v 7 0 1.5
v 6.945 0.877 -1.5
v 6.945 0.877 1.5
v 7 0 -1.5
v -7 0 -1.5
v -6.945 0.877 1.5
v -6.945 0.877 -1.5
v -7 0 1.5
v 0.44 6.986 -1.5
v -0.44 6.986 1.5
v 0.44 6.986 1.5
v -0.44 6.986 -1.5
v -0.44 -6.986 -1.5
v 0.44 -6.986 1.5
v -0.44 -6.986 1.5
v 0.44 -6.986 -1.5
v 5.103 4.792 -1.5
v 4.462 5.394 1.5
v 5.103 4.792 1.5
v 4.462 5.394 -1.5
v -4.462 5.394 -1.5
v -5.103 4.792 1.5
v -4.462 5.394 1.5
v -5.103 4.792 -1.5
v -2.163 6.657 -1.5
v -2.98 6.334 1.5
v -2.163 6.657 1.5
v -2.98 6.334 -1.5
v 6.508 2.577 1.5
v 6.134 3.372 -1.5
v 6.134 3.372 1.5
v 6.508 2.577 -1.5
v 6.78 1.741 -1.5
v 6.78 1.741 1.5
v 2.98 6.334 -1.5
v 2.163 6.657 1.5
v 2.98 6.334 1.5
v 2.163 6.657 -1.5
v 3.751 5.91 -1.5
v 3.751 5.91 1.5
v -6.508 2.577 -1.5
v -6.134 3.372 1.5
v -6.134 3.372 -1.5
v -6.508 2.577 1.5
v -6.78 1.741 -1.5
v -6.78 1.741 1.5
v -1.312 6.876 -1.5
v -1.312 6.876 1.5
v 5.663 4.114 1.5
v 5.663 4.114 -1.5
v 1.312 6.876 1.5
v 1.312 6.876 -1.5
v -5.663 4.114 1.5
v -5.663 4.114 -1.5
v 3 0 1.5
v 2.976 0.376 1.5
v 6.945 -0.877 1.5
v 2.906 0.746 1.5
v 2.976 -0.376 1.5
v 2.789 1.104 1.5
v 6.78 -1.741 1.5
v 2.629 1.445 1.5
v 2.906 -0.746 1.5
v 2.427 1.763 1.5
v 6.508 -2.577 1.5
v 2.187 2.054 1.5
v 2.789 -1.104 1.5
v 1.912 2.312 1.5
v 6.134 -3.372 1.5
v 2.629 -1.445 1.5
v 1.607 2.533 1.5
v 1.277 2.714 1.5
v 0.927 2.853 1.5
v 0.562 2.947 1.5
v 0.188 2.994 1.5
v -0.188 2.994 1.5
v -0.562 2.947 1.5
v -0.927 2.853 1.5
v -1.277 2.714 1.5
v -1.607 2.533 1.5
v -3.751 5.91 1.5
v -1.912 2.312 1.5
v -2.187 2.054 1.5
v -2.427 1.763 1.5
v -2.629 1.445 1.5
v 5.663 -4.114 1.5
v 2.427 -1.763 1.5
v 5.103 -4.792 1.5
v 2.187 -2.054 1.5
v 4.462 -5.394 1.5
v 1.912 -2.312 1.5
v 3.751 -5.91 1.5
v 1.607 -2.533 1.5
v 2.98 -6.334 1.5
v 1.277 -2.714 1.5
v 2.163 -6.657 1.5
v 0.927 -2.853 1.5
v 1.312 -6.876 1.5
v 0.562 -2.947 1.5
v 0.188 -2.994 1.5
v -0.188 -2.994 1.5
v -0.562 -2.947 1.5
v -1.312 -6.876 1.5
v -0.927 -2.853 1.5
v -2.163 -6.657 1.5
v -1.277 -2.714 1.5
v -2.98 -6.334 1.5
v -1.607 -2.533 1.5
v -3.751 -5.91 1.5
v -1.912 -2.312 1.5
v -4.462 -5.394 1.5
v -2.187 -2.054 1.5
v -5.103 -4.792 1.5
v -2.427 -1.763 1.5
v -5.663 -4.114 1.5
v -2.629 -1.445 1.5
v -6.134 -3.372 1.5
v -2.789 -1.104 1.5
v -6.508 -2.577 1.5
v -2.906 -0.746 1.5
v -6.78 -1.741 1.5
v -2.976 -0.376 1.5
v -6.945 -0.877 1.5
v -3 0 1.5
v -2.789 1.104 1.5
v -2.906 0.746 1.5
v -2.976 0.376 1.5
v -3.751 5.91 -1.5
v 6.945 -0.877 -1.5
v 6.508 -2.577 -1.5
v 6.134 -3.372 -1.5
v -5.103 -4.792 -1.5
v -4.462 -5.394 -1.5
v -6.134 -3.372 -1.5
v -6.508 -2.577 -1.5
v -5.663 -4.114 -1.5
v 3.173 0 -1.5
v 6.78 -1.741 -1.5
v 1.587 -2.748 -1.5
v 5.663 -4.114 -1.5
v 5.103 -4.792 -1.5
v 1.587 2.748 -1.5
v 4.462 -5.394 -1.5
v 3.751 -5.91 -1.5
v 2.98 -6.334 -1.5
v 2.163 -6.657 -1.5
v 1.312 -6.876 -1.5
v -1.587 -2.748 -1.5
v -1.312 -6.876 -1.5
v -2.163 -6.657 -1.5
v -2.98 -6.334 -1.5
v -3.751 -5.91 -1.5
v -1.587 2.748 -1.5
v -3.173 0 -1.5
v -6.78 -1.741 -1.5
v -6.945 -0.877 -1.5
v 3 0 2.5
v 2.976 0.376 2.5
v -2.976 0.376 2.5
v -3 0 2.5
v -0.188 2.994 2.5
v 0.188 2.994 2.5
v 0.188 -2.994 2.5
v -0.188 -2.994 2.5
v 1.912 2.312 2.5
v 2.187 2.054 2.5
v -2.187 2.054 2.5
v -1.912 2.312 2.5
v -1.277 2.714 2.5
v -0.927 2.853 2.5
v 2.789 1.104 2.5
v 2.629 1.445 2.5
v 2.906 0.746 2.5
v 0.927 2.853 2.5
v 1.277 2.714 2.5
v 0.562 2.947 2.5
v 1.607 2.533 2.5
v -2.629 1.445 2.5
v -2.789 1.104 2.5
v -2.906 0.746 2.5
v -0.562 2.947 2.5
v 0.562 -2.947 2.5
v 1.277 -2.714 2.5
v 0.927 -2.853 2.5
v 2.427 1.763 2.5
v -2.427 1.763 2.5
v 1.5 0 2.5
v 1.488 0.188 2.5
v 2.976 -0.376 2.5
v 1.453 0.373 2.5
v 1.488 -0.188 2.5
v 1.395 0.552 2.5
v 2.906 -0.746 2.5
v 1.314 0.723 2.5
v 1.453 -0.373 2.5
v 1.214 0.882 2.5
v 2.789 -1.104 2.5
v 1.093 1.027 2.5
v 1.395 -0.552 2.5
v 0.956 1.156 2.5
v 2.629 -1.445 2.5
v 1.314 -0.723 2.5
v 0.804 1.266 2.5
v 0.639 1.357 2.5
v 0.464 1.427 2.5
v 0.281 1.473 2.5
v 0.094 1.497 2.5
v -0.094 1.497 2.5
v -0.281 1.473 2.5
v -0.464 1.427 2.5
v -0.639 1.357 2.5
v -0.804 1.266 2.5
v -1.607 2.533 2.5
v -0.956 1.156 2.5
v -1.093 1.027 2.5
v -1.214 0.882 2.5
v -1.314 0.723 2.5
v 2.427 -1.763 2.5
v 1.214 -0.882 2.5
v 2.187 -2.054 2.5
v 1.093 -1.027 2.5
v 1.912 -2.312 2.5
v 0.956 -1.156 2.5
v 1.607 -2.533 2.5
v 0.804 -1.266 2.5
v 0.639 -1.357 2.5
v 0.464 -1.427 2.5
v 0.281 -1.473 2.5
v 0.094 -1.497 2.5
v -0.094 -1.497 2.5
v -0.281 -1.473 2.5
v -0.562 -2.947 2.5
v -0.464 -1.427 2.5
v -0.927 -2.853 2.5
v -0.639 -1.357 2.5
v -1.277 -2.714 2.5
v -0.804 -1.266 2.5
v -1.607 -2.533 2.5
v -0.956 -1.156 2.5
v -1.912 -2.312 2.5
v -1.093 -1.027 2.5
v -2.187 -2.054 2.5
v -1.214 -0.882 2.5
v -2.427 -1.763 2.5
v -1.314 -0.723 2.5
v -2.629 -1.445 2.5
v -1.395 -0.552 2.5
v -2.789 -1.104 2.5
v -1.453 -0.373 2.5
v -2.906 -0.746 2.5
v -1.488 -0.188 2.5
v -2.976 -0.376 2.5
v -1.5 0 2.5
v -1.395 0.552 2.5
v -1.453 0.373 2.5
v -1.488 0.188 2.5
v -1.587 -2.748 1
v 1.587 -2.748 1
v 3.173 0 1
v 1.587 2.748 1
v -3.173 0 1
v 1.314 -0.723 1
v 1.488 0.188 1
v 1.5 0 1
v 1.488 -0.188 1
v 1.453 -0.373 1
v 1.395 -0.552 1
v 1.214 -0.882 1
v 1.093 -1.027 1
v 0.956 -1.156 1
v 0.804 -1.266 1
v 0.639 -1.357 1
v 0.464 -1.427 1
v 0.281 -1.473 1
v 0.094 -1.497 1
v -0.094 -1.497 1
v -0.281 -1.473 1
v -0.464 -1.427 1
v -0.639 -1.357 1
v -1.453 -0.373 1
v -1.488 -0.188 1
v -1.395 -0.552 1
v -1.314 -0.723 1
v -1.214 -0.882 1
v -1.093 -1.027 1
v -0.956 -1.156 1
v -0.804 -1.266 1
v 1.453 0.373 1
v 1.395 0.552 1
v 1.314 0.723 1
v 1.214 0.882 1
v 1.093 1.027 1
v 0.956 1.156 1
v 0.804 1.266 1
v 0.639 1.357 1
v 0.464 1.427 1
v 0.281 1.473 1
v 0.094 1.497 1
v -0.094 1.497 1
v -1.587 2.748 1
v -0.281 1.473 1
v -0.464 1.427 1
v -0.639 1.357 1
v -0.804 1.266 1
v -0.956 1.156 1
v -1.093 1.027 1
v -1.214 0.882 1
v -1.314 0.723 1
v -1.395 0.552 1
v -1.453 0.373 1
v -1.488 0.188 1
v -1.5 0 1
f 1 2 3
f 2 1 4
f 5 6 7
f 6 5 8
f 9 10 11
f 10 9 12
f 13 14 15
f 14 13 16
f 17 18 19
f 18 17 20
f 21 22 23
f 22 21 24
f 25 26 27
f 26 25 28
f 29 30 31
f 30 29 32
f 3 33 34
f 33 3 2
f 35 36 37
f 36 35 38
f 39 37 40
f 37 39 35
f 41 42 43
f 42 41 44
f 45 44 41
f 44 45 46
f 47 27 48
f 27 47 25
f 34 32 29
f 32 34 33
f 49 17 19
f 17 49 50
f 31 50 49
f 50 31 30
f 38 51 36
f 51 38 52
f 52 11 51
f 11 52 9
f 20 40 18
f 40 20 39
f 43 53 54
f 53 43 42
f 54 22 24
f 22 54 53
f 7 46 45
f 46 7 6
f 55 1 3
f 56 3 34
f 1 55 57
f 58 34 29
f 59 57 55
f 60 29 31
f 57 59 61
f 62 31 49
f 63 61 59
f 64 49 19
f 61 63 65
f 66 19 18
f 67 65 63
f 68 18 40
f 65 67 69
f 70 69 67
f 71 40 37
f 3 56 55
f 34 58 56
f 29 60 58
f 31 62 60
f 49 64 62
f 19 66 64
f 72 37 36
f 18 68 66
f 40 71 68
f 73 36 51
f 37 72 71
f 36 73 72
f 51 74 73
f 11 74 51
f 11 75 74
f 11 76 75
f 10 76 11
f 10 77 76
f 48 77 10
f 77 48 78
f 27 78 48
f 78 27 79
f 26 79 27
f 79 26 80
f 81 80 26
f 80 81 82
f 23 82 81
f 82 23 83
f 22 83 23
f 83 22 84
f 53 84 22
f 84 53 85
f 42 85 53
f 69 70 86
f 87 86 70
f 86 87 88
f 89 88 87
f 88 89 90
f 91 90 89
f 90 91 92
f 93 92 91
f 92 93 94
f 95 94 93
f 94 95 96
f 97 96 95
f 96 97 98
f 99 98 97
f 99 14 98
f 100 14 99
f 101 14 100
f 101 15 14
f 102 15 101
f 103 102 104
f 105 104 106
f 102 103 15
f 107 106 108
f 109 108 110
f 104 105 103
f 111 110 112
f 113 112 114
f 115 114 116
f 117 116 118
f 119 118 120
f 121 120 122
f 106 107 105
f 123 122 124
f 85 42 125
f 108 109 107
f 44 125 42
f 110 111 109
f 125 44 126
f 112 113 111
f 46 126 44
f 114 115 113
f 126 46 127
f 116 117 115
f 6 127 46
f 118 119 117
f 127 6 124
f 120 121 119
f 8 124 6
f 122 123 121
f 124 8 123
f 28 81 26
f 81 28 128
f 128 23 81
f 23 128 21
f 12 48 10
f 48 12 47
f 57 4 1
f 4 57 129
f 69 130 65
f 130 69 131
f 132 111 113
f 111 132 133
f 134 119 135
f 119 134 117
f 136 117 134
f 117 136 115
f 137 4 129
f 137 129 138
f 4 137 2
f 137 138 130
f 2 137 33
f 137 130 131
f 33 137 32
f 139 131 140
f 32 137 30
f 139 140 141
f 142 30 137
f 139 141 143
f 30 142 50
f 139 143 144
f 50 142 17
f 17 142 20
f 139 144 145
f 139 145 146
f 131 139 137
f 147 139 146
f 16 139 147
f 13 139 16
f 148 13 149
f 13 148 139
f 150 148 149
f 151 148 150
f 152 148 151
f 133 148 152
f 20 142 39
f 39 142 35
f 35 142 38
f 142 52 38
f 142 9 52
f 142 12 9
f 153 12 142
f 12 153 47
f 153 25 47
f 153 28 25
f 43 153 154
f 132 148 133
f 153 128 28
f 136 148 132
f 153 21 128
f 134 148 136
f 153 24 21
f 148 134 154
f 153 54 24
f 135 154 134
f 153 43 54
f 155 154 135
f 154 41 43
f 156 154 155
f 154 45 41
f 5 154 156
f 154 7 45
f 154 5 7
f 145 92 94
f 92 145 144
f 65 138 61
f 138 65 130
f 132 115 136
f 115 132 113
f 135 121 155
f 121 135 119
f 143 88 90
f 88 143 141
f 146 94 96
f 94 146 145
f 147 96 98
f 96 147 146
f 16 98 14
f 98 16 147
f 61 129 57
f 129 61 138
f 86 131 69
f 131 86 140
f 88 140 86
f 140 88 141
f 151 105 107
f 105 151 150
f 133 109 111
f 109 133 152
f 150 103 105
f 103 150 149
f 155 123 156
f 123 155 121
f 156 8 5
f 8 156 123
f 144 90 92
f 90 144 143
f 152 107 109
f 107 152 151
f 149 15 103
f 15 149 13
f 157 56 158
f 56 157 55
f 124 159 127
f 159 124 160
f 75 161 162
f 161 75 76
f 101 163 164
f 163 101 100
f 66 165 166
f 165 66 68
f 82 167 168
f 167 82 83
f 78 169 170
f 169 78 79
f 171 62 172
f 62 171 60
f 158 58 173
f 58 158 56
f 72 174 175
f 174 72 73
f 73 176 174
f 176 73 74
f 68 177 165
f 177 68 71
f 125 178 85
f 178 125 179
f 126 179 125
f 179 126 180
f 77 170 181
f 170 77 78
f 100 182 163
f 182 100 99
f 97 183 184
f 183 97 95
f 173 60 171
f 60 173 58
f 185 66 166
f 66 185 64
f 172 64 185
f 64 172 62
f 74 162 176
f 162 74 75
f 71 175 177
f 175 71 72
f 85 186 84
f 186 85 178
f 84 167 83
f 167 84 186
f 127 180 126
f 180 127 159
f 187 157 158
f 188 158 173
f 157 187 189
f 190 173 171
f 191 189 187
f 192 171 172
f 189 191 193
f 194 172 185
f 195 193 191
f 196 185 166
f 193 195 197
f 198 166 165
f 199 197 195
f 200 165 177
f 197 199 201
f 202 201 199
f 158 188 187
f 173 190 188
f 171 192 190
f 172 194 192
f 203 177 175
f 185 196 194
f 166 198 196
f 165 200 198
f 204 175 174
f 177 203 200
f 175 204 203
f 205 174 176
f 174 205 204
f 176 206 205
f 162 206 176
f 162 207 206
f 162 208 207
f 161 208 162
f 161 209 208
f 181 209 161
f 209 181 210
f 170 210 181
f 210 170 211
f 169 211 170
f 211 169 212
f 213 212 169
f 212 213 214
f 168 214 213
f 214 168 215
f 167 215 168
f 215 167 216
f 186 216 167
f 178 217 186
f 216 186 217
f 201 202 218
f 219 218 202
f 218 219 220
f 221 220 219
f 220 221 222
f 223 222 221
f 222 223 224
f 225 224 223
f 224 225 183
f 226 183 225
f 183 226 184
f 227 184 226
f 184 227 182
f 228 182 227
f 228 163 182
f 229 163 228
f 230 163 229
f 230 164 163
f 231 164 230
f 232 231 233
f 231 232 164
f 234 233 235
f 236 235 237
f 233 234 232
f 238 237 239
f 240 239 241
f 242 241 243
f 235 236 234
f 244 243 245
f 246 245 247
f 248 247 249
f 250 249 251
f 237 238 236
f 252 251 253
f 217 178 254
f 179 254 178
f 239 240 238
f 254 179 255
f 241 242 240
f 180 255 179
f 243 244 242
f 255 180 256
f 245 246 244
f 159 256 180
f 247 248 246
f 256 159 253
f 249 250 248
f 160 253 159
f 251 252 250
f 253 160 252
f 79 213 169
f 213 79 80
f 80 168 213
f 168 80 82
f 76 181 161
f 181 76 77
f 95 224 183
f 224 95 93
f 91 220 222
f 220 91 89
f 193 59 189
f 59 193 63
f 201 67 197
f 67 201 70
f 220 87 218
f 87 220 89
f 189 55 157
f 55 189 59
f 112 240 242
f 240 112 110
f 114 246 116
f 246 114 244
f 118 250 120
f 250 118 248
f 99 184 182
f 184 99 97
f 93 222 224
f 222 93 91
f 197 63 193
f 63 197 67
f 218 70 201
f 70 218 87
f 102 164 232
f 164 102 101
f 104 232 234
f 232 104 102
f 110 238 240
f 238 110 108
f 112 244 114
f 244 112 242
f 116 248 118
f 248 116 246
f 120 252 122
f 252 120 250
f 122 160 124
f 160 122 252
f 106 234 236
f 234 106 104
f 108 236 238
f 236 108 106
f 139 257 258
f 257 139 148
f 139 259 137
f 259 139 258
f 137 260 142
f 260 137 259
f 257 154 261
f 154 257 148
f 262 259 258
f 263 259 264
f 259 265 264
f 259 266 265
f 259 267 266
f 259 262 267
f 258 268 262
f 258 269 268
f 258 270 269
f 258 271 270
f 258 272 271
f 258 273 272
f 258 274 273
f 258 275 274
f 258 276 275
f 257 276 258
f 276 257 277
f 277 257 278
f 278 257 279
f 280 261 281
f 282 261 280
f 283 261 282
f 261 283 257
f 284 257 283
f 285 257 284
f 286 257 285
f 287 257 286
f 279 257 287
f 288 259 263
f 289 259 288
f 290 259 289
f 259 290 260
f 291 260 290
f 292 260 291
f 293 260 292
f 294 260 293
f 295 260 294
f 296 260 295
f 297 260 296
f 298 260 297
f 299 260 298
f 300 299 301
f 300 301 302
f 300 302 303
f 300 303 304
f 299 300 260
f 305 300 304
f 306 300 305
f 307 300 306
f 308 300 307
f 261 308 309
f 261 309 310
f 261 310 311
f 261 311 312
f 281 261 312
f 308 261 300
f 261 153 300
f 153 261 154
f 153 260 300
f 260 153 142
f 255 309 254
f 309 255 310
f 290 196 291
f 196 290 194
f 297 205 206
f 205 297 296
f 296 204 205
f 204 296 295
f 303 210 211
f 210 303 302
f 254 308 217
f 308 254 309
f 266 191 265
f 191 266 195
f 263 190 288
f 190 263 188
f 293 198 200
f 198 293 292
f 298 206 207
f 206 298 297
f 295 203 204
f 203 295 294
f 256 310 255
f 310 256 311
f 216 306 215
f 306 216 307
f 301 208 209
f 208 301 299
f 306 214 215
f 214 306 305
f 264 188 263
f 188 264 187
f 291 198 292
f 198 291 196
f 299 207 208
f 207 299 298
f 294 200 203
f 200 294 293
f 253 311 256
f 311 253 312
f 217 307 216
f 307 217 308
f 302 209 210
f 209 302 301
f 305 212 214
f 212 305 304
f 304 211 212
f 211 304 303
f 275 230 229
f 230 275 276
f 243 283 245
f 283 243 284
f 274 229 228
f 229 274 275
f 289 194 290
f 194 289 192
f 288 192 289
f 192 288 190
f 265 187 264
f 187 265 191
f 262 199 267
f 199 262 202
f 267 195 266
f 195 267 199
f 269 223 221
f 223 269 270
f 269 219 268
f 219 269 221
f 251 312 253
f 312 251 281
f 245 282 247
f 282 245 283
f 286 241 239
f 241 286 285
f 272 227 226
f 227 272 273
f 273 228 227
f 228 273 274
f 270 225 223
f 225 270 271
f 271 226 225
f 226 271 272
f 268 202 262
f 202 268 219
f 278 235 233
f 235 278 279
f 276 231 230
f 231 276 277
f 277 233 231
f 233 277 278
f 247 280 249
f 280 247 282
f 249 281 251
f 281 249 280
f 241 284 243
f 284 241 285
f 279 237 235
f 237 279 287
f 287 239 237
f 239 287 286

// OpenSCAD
$fn = 50;


difference() {
	union() {
		translate(v = [0, 0, -1.5000000000]) {
			cylinder(h = 3, r = 7.0000000000);
		}
		translate(v = [0, 0, -1.5000000000]) {
			cylinder(h = 4, r = 3.0000000000);
		}
	}
	union() {
		translate(v = [0, 0, -1.5000000000]) {
			rotate(a = [0, 0, 0]) {
				difference() {
					union() {
						#linear_extrude(height = 2.5000000000) {
							polygon(points = [[3.1735000000, 0.0000000000], [1.5867500000, 2.7483316189], [-1.5867500000, 2.7483316189], [-3.1735000000, 0.0000000000], [-1.5867500000, -2.7483316189], [1.5867500000, -2.7483316189]]);
						}
					}
					union();
				}
			}
		}
		translate(v = [0, 0, -50.0000000000]) {
			cylinder(h = 100, r = 1.5000000000);
		}
	}
}
